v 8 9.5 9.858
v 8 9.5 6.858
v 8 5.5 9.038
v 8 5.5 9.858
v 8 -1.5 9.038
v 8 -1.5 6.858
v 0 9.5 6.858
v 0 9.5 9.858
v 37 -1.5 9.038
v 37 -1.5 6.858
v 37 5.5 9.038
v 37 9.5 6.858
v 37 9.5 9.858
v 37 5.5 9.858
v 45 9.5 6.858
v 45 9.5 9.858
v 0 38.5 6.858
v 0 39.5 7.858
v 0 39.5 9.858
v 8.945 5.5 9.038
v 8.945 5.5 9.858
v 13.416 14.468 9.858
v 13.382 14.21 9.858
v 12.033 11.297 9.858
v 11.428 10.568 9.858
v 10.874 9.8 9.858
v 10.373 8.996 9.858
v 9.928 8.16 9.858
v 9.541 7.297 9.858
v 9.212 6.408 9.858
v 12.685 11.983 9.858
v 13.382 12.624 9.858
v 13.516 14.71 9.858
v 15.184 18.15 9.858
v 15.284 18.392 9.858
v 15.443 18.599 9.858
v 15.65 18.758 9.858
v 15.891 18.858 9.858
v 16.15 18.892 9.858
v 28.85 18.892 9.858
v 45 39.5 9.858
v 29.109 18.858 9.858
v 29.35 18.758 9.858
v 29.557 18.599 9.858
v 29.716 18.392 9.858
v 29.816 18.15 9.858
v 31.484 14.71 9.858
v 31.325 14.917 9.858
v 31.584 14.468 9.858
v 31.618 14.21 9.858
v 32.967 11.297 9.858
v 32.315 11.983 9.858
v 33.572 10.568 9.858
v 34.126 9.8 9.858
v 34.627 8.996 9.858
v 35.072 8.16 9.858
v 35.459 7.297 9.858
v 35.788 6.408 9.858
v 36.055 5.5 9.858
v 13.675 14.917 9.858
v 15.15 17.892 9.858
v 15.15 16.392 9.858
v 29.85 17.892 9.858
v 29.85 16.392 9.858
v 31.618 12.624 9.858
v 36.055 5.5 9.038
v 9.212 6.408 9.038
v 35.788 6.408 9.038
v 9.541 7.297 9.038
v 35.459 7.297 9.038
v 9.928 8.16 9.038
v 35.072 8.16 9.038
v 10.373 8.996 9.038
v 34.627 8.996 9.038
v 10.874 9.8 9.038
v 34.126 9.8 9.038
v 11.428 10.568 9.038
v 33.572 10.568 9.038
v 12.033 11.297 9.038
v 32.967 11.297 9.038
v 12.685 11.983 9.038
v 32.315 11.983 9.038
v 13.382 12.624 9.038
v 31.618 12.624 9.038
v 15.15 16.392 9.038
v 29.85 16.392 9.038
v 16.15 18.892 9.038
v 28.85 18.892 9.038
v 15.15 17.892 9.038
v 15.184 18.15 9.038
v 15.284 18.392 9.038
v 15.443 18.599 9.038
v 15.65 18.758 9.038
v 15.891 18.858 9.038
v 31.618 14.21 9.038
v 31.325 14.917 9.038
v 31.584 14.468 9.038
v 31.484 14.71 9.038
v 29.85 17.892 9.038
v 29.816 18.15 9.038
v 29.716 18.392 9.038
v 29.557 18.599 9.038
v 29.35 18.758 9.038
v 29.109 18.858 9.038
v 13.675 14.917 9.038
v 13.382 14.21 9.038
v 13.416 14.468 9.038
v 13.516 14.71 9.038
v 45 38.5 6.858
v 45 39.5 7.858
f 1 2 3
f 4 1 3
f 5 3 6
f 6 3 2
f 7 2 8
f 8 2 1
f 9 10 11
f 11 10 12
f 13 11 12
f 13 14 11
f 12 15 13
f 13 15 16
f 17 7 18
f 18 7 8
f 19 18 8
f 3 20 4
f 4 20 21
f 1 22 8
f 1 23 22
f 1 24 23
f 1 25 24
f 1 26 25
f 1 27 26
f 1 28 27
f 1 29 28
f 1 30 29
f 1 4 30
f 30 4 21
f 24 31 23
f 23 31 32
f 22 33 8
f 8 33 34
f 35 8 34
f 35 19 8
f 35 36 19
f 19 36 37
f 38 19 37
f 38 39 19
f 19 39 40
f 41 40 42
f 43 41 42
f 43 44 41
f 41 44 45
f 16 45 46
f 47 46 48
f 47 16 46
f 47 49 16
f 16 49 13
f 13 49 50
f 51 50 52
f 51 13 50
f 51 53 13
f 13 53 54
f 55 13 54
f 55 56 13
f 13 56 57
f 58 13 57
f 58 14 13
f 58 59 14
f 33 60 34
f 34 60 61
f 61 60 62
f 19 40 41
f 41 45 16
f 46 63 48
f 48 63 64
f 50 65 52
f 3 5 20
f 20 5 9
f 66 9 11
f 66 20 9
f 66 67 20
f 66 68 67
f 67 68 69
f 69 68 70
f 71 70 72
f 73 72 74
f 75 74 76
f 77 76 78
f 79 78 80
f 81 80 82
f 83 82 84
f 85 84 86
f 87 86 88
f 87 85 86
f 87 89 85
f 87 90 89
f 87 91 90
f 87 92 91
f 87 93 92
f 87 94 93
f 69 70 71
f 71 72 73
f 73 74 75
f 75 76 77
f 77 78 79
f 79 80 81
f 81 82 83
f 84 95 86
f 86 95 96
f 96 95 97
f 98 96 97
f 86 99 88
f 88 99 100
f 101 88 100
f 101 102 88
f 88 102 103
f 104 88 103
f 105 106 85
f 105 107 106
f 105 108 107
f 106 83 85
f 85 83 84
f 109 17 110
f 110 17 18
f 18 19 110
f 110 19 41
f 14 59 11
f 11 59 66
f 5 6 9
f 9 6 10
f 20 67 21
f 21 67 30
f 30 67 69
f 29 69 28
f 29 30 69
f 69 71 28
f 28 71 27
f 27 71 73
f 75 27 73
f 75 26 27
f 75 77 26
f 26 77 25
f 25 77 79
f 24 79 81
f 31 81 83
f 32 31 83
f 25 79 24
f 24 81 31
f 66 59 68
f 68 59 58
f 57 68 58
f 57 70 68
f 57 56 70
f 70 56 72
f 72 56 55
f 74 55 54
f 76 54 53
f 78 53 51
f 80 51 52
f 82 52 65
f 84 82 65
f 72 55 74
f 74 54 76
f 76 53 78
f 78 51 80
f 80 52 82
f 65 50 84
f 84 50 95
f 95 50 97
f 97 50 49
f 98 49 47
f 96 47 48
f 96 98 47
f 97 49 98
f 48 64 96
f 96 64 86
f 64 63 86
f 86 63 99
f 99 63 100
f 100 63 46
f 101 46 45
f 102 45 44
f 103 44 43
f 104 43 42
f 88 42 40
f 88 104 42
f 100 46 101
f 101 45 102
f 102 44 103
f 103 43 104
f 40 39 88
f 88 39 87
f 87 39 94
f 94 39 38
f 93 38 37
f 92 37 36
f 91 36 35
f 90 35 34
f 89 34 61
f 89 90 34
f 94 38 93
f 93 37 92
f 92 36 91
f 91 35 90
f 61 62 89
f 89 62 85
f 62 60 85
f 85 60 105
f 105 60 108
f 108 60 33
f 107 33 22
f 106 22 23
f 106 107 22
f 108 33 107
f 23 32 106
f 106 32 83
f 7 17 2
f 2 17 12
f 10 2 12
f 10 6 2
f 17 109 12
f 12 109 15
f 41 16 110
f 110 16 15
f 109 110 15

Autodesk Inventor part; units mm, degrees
ref_plane "YZ Plane" through (0, 0, 0) normal (1, 0, 0) x (0, 1, 0)
ref_plane "XZ Plane" through (0, 0, 0) normal (0, 1, 0) x (-1, 0, 0)
ref_plane "XY Plane" through (0, 0, 0) normal (0, 0, 1) x (1, 0, 0)
sketch "Sketch1" plane through (0, 0, 0) normal (1, 0, 0) x (0, 1, 0)
  line L0 (-1.5, 6.858) -> (1.5, 6.858)
  line L1 (1.5, 6.858) -> (1.5, -6.858)
  line L2 (1.5, -6.858) -> (-1.5, -6.858)
  line L3 (-1.5, -6.858) -> (-1.5, 6.858)
  line L4 (-1.5, 6.858) -> (1.5, -6.858) construction
  line L5 (1.5, 6.858) -> (-1.5, -6.858) construction
  line L6 (1.5, 6.858) -> (39.5, 6.858)
  line L7 (39.5, 6.858) -> (39.5, 9.858)
  line L8 (39.5, 9.858) -> (1.5, 9.858)
  line L9 (1.5, 9.858) -> (1.5, 6.858)
  line L10 (1.5, -6.858) -> (39.5, -6.858)
  line L11 (39.5, -6.858) -> (39.5, -9.858)
  line L12 (39.5, -9.858) -> (1.5, -9.858)
  line L13 (1.5, -9.858) -> (1.5, -6.858)
  line L14 (9.5, 6.858) -> (1.5, 6.858)
  line L15 (1.5, 6.858) -> (1.5, -0.142)
  line L16 (1.5, -0.142) -> (9.5, -0.142)
  line L17 (9.5, -0.142) -> (9.5, 6.858)
  line L18 (9.5, -6.858) -> (1.5, -6.858)
  line L19 (1.5, -6.858) -> (1.5, -0.142)
  line L20 (1.5, -0.142) -> (9.5, -0.142)
  line L21 (9.5, -0.142) -> (9.5, -6.858)
  line L22 (9.5, -0.142) -> (1.5, -0.142)
  line L23 (1.5, 6.858) -> (-1.5, 6.858)
  line L24 (-1.5, 6.858) -> (-1.5, 9.858)
  line L25 (-1.5, 9.858) -> (1.5, 9.858)
  line L26 (1.5, 9.858) -> (1.5, 6.858)
  line L27 (1.5, -6.858) -> (-1.5, -6.858)
  line L28 (-1.5, -6.858) -> (-1.5, -9.858)
  line L29 (-1.5, -9.858) -> (1.5, -9.858)
  line L30 (1.5, -9.858) -> (1.5, -6.858)
  point P0 (0, 0)
  dimension "d0" = 3
  dimension "d2" = 13.716
  dimension "d3" = 3
  dimension "d4" = 3
  dimension "d5" = 38
  dimension "d6" = 38
  dimension "d7" = 0
  dimension "d8" = 8
  dimension "d9" = 8
  dimension "d12" = 7
  dimension "d13" = 6.716
extrude "Extrusion1" add sketch "Sketch1" along normal blind 45
sketch "Sketch2" plane through (0, -1.5, 9.858) normal (0, 0, 1) x (1, 0, 0)
  line L0 (5, 7) -> (8.9446, 7) projected
  arc A0 (5, 7) -> (5, 0) centre (5, 3.5) ccw projected
  line L1 (8.9446, 0) -> (5, 0) projected
  arc A1 (13.3822, 14.1239) -> (31.6178, 14.1239) centre (22.5, 3.5) ccw projected
  line L2 (13.3822, 14.1239) -> (13.3822, 15.7096) projected
  line L3 (13.6751, 16.4167) -> (15.15, 17.8916) projected
  arc A2 (13.6751, 16.4167) -> (13.3822, 15.7096) centre (14.3822, 15.7096) ccw projected
  arc A3 (16.15, 20.3916) -> (15.15, 19.3916) centre (16.15, 19.3916) ccw projected
  line L4 (15.15, 19.3916) -> (15.15, 17.8916) projected
  line L5 (28.85, 20.3916) -> (16.15, 20.3916) projected
  arc A4 (29.85, 19.3916) -> (28.85, 20.3916) centre (28.85, 19.3916) ccw projected
  line L6 (29.85, 17.8916) -> (29.85, 19.3916) projected
  line L7 (31.3249, 16.4167) -> (29.85, 17.8916) projected
  line L8 (31.6178, 15.7096) -> (31.6178, 14.1239) projected
  arc A5 (31.6178, 15.7096) -> (31.3249, 16.4167) centre (30.6178, 15.7096) ccw projected
  line L9 (40, 7) -> (36.0554, 7) projected
  arc A6 (40, 0) -> (40, 7) centre (40, 3.5) ccw projected
  line L10 (36.0554, 0) -> (40, 0) projected
  line L11 (40, 7) -> (36.0554, 7) projected
  arc A7 (40, 0) -> (40, 7) centre (40, 3.5) ccw projected
  line L12 (36.0554, 0) -> (40, 0) projected
  line L13 (8.9446, 0) -> (5, 0) projected
  line L14 (36.0554, 0) -> (40, 0) projected
  line L15 (0, 41) -> (0, 0) projected
  line L16 (0, 0) -> (45, 0) projected
  line L17 (45, 41) -> (45, 0) projected
  line L18 (0, 41) -> (45, 41) projected
  line L19 (5, 7) -> (8.9446, 7) projected
  arc A8 (5, 7) -> (5, 0) centre (5, 3.5) ccw projected
sketch "Sketch3" plane through (0, -1.5, 9.858) normal (0, 0, 1) x (1, 0, 0)
  line L0 (0, 0) -> (45, 0) projected
  line L1 (45, 41) -> (45, 0) projected
  point P0 (0, 41)
  point P1 (0, 1.5)
  point P2 (5, 3.5)
  point P3 (40, 3.5)
  dimension "d16" = 35
  dimension "d18" = 5
  dimension "d19" = 45
  dimension "d20" = 3.5
  dimension "d21" = 3.5
hole "Hole1" at (5, 2, 9.858) at (40, 2, 9.858) direction (0, 0, -1) diameter 4.2 end through all
extrude "Extrusion2" cut sketch "Sketch2" against normal blind 0.82 contours A1 L2 A2 L3 L4 A3 L5 A4 L6 L7 A5 L8 L16 | L16 A1
sketch "Sketch4" plane through (0, -1.5, 9.858) normal (0, 0, 1) x (1, 0, 0)
  arc A0 (36.0554, 0) -> (31.6178, 14.1239) centre (22.5, 3.5) ccw projected
  line L0 (36.0554, 0) -> (45, 0) projected
  arc A1 (13.3822, 14.1239) -> (8.9446, 0) centre (22.5, 3.5) ccw projected
  circle A2 centre (5, 3.5) radius 2.1 projected
  circle A3 centre (40, 3.5) radius 2.1 projected
  arc A4 (5, 7) -> (5, 0) centre (5, 3.5) ccw projected
  line L1 (5, 7) -> (8.9446, 7) projected
  line L2 (8.9446, 0) -> (5, 0) projected
  arc A5 (13.3822, 14.1239) -> (31.6178, 14.1239) centre (22.5, 3.5) ccw projected
  arc A6 (13.3822, 14.1239) -> (31.6178, 14.1239) centre (22.5, 3.5) ccw projected
  line L3 (40, 7) -> (36.0554, 7) projected
  arc A7 (40, 0) -> (40, 7) centre (40, 3.5) ccw projected
  line L4 (36.0554, 0) -> (40, 0) projected
  point P0 (0, 1.5)
extrude "Extrusion3" cut sketch "Sketch4" against normal blind 0.82
sketch "Sketch5" plane through (0, -1.5, -9.858) normal (0, 0, -1) x (-1, 0, 0)
  circle A0 centre (-5, 3.5) radius 2.1 projected
  circle A1 centre (-40, 3.5) radius 2.1 projected
  line L0 (-34.959, 3.5) -> (-37.4795, -0.8656)
  line L1 (-37.4795, -0.8656) -> (-42.5205, -0.8656)
  line L2 (-42.5205, -0.8656) -> (-45.041, 3.5)
  line L3 (-45.041, 3.5) -> (-42.5205, 7.8656)
  line L4 (-42.5205, 7.8656) -> (-37.4795, 7.8656)
  line L5 (-37.4795, 7.8656) -> (-34.959, 3.5)
  line L6 (0.041, 3.5) -> (-2.4795, -0.8656)
  line L7 (-2.4795, -0.8656) -> (-7.5205, -0.8656)
  line L8 (-7.5205, -0.8656) -> (-10.041, 3.5)
  line L9 (-10.041, 3.5) -> (-7.5205, 7.8656)
  line L10 (-7.5205, 7.8656) -> (-2.4795, 7.8656)
  line L11 (-2.4795, 7.8656) -> (0.041, 3.5)
  point P0 (0, 1.5)
  point P1 (-40, 3.5)
  point P2 (-5, 3.5)
  dimension "d33" = 8.7312
  dimension "d34" = 8.7312
extrude "Extrusion4" cut sketch "Sketch5" against normal blind 3.175
sketch "Sketch6" plane through (0, 9.5, 6.858) normal (0, 1, 0) x (1, 0, 0)
  line L0 (7.5, 1.82) -> (37.5, 1.82) projected
  line L1 (37.5, 9.82) -> (7.5, 9.82) projected
  line L2 (7.5, 1.82) -> (7.5, 9.82)
  line L3 (37.5, 1.82) -> (37.5, 9.82)
  line L4 (7, 10.32) -> (38, 10.32)
  line L5 (38, 10.32) -> (38, 1.32)
  line L6 (38, 1.32) -> (7, 1.32)
  line L7 (7, 1.32) -> (7, 10.32)
  line L8 (8, 10.32) -> (37, 10.32)
  line L9 (37, 10.32) -> (37, 1.32)
  line L10 (37, 1.32) -> (8, 1.32)
  line L11 (8, 1.32) -> (8, 10.32)
  line L12 (0, 0) -> (45, 0) projected
  line L13 (8, 1.32) -> (37, 1.32)
  line L14 (37, 1.32) -> (37, 0)
  line L15 (37, 0) -> (8, 0)
  line L16 (8, 0) -> (8, 1.32)
  point P0 (0, 6.858)
  dimension "d37" = 0.5
  dimension "d56" = 1
  dimension "d57" = 1
chamfer "Chamfer1" distance 1 angle 45 2 edges at (22.5, 39.5, -6.858) (22.5, 39.5, 6.858)
sketch "Sketch7" plane through (0, 9.5, -6.858) normal (0, 0, 1) x (1, 0, 0)
  line L0 (0, 29) -> (0, 0) projected
  line L1 (0, 0) -> (45, 0) projected
  line L2 (45, 29) -> (45, 0) projected
  circle A0 centre (22.5, 10) radius 4.318
  line L3 (22.5, 10) -> (22.5, 20)
  circle A1 centre (22.5, 20) radius 2.159
  line L4 (20.341, 20) -> (20.341, 6.2605)
  line L5 (24.659, 20) -> (24.659, 6.2605)
  point P0 (0, -9.5)
  dimension "d43" = 8.636
  dimension "d45" = 10
  dimension "d46" = 4.318
  dimension "d47" = 22.5
  dimension "d48" = 45
  dimension "d49" = 10
extrude "Extrusion6" cut sketch "Sketch7" against normal through all
sketch "Sketch8" plane through (0, 9.5, -6.858) normal (0, 0, 1) x (1, 0, 0)
  arc A0 (20.341, 13.7395) -> (24.659, 13.7395) centre (22.5, 10) ccw projected
  line L0 (20.341, 13.7395) -> (20.341, 20) projected
  arc A1 (24.659, 20) -> (20.341, 20) centre (22.5, 20) ccw projected
  line L1 (24.659, 20) -> (24.659, 13.7395) projected
  line L2 (45, 29) -> (45, 0) projected
  circle A2 centre (22.5, 20) radius 4.318
  line L3 (18.182, 20) -> (18.182, 10)
  line L4 (26.818, 10) -> (26.818, 20)
  point P0 (0, -9.5)
  dimension "d52" = 4.318
  dimension "d53" = 8.636
extrude "Extrusion7" cut sketch "Sketch8" against normal blind 2 contours L0 A2 L1 A0 | A0 L3 A2 L0 | A2 L1 A1 L0 | A0 L1 A2 L4 picked at (24.9024, 17.6839)
extrude "Extrusion8" cut sketch "Sketch6" against normal through all contours L11 L1 L9 L0 | L0 L9 L6 L11 | L6 L14 L12 L16 | L11 L4 L9 L1
sketch "Sketch9" plane through (0, 0, 0) normal (-1, 0, 0) x (0, 0, 1)
  line L0 (-30, 50) -> (6.858, 50)
  line L1 (6.858, 50) -> (6.858, -18)
  line L2 (6.858, -18) -> (-30, -18)
  line L3 (-30, -18) -> (-30, 50)
  point P0 (0, 0)
extrude "Extrusion9" cut sketch "Sketch9" against normal through all
sketch "Sketch10" plane through (0, -1.5, 9.858) normal (0, 0, 1) x (1, 0, 0)
  line L0 (8, 11) -> (0, 11)
  line L1 (0, 11) -> (0, 0)
  line L2 (0, 0) -> (8, 0)
  line L3 (8, 0) -> (8, 11)
  line L4 (37, 11) -> (45, 11)
  line L5 (45, 11) -> (45, 0)
  line L6 (45, 0) -> (37, 0)
  line L7 (37, 0) -> (37, 11)
  point P0 (0, 1.5)
extrude "Extrusion10" cut sketch "Sketch10" against normal through all
equation "\"d2\" = StretcherDepth"
equation "\"d6\" = d5"
equation "\"d9\" = d8"
equation "\"d18\" = -0.5 * d16 + 0.5 * d19"
equation "\"d47\" = 0.5 * d48"
equation "\"d53\" = 2 * d52"
equation "\"StretcherDepth\" = 13.716"
properties part number "MotorClipV3Front" material "ABS Plastic"
